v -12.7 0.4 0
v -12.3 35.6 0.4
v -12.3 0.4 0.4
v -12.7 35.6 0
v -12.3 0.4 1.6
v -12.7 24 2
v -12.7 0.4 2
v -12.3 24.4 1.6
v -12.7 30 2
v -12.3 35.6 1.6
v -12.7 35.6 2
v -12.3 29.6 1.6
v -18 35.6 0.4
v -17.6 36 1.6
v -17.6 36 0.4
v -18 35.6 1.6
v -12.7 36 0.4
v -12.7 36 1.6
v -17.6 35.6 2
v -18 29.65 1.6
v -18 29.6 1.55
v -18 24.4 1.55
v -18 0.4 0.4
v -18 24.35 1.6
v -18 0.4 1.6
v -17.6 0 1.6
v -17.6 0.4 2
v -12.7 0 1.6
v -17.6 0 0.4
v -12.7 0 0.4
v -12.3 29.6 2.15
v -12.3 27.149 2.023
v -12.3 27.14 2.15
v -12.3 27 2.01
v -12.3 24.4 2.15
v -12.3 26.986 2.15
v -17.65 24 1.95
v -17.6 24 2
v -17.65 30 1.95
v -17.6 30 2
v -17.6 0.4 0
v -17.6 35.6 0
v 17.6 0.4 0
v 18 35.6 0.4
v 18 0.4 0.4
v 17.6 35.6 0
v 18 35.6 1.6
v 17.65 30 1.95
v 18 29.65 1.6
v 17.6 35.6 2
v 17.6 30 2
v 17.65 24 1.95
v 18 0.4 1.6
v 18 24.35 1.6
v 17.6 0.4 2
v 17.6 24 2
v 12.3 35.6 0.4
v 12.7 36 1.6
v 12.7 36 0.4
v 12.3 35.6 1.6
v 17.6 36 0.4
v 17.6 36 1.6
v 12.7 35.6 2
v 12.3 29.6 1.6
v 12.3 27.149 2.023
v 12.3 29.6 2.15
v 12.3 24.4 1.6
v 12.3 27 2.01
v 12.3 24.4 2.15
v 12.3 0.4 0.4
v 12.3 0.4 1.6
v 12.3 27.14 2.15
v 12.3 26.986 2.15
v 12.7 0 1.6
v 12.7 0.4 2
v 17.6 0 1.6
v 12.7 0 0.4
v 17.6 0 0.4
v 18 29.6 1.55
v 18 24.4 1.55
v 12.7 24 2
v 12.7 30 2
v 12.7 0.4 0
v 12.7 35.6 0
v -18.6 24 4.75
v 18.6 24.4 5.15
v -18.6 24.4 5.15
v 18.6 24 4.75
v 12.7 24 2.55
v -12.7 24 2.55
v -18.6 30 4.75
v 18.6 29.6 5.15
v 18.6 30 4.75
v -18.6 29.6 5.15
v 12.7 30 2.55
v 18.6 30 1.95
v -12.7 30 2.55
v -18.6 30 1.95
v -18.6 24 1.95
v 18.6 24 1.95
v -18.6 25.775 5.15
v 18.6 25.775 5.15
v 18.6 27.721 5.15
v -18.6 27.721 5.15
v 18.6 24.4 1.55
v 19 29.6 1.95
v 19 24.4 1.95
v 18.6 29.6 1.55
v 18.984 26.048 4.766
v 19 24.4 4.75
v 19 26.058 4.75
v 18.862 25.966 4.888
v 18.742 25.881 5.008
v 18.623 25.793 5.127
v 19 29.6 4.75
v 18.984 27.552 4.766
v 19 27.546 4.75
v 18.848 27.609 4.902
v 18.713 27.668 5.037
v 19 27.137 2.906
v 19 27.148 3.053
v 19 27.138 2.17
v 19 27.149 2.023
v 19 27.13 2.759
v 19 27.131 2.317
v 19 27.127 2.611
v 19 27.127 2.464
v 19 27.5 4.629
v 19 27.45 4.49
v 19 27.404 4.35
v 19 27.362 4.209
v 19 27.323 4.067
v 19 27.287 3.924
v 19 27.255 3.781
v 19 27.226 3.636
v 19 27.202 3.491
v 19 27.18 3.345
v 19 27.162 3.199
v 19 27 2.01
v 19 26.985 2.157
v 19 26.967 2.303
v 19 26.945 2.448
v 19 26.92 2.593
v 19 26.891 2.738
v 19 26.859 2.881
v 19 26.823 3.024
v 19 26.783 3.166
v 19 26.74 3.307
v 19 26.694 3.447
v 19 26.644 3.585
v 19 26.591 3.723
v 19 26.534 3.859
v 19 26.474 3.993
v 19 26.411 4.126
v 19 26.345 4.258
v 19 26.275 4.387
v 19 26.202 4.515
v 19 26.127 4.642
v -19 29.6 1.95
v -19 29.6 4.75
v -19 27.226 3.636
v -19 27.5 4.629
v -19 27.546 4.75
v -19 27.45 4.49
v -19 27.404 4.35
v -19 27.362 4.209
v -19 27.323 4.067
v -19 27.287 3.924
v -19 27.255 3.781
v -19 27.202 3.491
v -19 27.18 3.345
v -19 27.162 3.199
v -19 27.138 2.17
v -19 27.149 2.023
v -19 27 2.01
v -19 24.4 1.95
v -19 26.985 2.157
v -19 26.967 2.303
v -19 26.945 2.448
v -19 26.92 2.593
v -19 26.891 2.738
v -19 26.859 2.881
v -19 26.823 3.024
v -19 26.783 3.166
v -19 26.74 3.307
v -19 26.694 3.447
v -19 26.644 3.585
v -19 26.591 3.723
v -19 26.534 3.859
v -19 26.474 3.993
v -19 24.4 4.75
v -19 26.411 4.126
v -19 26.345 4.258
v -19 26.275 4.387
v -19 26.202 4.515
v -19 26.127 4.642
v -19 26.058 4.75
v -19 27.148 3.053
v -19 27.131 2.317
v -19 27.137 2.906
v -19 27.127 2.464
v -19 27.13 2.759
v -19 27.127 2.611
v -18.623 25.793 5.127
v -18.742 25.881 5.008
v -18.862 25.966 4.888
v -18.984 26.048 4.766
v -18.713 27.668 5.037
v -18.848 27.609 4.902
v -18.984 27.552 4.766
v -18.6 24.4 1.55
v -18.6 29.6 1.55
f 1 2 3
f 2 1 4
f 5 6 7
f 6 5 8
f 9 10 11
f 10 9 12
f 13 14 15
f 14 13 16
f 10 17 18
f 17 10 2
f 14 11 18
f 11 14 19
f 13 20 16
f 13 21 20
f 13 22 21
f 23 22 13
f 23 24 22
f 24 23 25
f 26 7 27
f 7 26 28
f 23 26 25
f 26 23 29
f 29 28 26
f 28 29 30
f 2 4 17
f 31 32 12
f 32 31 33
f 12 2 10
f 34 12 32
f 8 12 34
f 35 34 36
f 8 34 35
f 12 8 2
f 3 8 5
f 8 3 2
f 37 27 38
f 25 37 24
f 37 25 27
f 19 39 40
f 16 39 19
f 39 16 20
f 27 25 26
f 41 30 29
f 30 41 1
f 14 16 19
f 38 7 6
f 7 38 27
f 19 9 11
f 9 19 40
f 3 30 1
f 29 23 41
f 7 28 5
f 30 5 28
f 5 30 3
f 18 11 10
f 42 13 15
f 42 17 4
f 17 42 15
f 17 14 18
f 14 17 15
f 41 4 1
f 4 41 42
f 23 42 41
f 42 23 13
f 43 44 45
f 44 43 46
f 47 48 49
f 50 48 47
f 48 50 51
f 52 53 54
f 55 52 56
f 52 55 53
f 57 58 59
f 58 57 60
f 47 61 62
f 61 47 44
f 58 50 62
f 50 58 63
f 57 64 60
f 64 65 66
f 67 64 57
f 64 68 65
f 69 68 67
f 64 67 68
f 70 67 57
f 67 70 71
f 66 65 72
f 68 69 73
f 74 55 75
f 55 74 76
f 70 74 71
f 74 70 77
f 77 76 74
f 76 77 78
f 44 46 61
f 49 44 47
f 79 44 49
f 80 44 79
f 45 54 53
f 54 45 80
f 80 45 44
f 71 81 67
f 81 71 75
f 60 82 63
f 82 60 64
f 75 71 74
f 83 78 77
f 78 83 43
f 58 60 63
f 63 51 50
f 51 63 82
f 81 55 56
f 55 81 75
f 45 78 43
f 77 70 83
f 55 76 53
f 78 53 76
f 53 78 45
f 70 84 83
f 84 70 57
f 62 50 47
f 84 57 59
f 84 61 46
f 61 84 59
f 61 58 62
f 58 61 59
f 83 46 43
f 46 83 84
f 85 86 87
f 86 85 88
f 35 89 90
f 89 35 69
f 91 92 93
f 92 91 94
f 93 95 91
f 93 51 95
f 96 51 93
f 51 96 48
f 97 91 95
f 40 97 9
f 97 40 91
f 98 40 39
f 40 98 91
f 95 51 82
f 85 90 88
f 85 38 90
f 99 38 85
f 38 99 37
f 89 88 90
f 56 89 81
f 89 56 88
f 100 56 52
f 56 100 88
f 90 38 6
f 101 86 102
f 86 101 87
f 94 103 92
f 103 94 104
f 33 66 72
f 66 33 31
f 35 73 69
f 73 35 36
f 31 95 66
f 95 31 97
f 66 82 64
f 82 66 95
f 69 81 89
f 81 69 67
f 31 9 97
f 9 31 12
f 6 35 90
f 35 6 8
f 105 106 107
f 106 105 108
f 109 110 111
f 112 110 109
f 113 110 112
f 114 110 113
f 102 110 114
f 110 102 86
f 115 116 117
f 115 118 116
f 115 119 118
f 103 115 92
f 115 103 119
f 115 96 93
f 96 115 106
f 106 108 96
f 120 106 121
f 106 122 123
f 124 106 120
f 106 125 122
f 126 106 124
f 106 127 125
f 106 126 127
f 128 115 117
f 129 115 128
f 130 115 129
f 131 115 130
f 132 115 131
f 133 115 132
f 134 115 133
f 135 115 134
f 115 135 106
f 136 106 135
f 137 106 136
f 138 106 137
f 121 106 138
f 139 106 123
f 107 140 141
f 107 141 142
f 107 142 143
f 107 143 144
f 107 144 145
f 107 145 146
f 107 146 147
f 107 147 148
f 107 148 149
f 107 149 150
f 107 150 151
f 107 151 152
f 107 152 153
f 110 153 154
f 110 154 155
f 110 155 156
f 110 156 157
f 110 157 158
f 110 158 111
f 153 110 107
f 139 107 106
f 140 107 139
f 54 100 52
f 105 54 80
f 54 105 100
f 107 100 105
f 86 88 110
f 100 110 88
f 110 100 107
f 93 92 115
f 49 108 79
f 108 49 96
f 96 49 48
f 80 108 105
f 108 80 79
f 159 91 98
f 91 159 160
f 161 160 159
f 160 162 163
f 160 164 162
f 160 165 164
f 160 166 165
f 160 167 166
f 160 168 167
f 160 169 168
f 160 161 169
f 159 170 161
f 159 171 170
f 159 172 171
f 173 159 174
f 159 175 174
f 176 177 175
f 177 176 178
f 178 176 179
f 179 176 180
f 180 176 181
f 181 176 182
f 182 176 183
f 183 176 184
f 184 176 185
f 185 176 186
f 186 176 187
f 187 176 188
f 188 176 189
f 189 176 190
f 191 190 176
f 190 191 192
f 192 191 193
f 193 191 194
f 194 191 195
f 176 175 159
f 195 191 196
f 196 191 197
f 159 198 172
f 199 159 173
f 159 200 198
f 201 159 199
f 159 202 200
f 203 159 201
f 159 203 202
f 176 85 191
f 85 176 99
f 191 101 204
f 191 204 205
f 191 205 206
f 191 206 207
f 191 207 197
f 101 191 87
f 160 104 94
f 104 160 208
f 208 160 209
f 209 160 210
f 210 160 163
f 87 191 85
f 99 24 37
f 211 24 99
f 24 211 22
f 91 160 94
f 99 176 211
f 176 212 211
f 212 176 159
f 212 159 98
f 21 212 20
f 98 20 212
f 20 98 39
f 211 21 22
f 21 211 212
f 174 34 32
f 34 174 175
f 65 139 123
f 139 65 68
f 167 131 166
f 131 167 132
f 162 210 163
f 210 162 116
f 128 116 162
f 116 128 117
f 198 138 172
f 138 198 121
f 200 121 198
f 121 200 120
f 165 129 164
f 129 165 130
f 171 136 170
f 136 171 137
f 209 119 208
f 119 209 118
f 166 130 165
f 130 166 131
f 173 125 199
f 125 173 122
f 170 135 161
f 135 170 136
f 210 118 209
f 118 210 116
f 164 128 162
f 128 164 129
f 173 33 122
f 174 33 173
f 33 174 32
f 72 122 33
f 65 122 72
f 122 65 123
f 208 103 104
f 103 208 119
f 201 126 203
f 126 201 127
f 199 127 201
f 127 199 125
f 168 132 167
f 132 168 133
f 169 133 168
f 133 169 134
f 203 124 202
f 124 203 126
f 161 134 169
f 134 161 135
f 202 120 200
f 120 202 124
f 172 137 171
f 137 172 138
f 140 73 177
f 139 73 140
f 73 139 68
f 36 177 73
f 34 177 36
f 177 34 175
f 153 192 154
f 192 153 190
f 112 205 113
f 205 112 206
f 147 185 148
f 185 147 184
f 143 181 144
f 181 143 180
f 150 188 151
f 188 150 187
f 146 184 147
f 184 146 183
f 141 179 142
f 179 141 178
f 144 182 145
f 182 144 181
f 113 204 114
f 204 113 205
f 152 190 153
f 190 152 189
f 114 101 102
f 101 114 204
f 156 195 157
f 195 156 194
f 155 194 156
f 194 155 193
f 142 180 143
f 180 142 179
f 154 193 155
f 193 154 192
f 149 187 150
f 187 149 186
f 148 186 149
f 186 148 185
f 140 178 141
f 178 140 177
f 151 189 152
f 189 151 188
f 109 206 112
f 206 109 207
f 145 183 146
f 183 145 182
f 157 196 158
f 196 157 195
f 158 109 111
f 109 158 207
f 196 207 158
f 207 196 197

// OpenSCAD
$fn=256;$fa=6;


difference() {
	union() {
		translate(v = [-15.1500000000, 0, 0]) {
			translate(v = [0, 18.0000000000, 1.0000000000]) {
				hull() {
					cube(center = true, size = [5.7000000000, 35.2000000000, 1.2000000000]);
					cube(center = true, size = [4.9000000000, 36, 1.2000000000]);
					cube(center = true, size = [4.9000000000, 35.2000000000, 2]);
				}
			}
		}
		translate(v = [15.1500000000, 0, 0]) {
			translate(v = [0, 18.0000000000, 1.0000000000]) {
				hull() {
					cube(center = true, size = [5.7000000000, 35.2000000000, 1.2000000000]);
					cube(center = true, size = [4.9000000000, 36, 1.2000000000]);
					cube(center = true, size = [4.9000000000, 35.2000000000, 2]);
				}
			}
		}
		translate(v = [0, 27, 3.6500000000]) {
			hull() {
				cube(center = true, size = [36, 5.2000000000, 2.2000000000]);
				cube(center = true, size = [35.2000000000, 6, 2.2000000000]);
				cube(center = true, size = [35.2000000000, 5.2000000000, 3]);
			}
		}
		translate(v = [15.1500000000, 27, 0]) {
			translate(v = [0, 0, 2.5000000000]) {
				hull() {
					cube(center = true, size = [5.7000000000, 5.2000000000, 4.2000000000]);
					cube(center = true, size = [4.9000000000, 6, 4.2000000000]);
					cube(center = true, size = [4.9000000000, 5.2000000000, 5]);
				}
			}
		}
		translate(v = [-15.1500000000, 27, 0]) {
			translate(v = [0, 0, 2.5000000000]) {
				hull() {
					cube(center = true, size = [5.7000000000, 5.2000000000, 4.2000000000]);
					cube(center = true, size = [4.9000000000, 6, 4.2000000000]);
					cube(center = true, size = [4.9000000000, 5.2000000000, 5]);
				}
			}
		}
		translate(v = [16.1500000000, 27, 0]) {
			translate(v = [0, 0, 3.3500000000]) {
				hull() {
					cube(center = true, size = [5.7000000000, 5.2000000000, 2.8000000000]);
					cube(center = true, size = [4.9000000000, 6, 2.8000000000]);
					cube(center = true, size = [4.9000000000, 5.2000000000, 3.6000000000]);
				}
			}
		}
		translate(v = [-16.1500000000, 27, 0]) {
			translate(v = [0, 0, 3.3500000000]) {
				hull() {
					cube(center = true, size = [5.7000000000, 5.2000000000, 2.8000000000]);
					cube(center = true, size = [4.9000000000, 6, 2.8000000000]);
					cube(center = true, size = [4.9000000000, 5.2000000000, 3.6000000000]);
				}
			}
		}
	}
	translate(v = [0, 27, 2.0100000000]) {
		rotate(a = [5, 0, 0]) {
			difference() {
				translate(v = [0, 0, 10]) {
					cube(center = true, size = [50, 3, 20]);
				}
				translate(v = [0, 6.1500000000, 0]) {
					rotate(a = [0, 90, 0]) {
						cylinder(center = true, h = 50, r = 6);
					}
				}
				translate(v = [0, -6, 0]) {
					rotate(a = [0, 90, 0]) {
						cylinder(center = true, h = 50, r = 6);
					}
				}
			}
		}
	}
}
